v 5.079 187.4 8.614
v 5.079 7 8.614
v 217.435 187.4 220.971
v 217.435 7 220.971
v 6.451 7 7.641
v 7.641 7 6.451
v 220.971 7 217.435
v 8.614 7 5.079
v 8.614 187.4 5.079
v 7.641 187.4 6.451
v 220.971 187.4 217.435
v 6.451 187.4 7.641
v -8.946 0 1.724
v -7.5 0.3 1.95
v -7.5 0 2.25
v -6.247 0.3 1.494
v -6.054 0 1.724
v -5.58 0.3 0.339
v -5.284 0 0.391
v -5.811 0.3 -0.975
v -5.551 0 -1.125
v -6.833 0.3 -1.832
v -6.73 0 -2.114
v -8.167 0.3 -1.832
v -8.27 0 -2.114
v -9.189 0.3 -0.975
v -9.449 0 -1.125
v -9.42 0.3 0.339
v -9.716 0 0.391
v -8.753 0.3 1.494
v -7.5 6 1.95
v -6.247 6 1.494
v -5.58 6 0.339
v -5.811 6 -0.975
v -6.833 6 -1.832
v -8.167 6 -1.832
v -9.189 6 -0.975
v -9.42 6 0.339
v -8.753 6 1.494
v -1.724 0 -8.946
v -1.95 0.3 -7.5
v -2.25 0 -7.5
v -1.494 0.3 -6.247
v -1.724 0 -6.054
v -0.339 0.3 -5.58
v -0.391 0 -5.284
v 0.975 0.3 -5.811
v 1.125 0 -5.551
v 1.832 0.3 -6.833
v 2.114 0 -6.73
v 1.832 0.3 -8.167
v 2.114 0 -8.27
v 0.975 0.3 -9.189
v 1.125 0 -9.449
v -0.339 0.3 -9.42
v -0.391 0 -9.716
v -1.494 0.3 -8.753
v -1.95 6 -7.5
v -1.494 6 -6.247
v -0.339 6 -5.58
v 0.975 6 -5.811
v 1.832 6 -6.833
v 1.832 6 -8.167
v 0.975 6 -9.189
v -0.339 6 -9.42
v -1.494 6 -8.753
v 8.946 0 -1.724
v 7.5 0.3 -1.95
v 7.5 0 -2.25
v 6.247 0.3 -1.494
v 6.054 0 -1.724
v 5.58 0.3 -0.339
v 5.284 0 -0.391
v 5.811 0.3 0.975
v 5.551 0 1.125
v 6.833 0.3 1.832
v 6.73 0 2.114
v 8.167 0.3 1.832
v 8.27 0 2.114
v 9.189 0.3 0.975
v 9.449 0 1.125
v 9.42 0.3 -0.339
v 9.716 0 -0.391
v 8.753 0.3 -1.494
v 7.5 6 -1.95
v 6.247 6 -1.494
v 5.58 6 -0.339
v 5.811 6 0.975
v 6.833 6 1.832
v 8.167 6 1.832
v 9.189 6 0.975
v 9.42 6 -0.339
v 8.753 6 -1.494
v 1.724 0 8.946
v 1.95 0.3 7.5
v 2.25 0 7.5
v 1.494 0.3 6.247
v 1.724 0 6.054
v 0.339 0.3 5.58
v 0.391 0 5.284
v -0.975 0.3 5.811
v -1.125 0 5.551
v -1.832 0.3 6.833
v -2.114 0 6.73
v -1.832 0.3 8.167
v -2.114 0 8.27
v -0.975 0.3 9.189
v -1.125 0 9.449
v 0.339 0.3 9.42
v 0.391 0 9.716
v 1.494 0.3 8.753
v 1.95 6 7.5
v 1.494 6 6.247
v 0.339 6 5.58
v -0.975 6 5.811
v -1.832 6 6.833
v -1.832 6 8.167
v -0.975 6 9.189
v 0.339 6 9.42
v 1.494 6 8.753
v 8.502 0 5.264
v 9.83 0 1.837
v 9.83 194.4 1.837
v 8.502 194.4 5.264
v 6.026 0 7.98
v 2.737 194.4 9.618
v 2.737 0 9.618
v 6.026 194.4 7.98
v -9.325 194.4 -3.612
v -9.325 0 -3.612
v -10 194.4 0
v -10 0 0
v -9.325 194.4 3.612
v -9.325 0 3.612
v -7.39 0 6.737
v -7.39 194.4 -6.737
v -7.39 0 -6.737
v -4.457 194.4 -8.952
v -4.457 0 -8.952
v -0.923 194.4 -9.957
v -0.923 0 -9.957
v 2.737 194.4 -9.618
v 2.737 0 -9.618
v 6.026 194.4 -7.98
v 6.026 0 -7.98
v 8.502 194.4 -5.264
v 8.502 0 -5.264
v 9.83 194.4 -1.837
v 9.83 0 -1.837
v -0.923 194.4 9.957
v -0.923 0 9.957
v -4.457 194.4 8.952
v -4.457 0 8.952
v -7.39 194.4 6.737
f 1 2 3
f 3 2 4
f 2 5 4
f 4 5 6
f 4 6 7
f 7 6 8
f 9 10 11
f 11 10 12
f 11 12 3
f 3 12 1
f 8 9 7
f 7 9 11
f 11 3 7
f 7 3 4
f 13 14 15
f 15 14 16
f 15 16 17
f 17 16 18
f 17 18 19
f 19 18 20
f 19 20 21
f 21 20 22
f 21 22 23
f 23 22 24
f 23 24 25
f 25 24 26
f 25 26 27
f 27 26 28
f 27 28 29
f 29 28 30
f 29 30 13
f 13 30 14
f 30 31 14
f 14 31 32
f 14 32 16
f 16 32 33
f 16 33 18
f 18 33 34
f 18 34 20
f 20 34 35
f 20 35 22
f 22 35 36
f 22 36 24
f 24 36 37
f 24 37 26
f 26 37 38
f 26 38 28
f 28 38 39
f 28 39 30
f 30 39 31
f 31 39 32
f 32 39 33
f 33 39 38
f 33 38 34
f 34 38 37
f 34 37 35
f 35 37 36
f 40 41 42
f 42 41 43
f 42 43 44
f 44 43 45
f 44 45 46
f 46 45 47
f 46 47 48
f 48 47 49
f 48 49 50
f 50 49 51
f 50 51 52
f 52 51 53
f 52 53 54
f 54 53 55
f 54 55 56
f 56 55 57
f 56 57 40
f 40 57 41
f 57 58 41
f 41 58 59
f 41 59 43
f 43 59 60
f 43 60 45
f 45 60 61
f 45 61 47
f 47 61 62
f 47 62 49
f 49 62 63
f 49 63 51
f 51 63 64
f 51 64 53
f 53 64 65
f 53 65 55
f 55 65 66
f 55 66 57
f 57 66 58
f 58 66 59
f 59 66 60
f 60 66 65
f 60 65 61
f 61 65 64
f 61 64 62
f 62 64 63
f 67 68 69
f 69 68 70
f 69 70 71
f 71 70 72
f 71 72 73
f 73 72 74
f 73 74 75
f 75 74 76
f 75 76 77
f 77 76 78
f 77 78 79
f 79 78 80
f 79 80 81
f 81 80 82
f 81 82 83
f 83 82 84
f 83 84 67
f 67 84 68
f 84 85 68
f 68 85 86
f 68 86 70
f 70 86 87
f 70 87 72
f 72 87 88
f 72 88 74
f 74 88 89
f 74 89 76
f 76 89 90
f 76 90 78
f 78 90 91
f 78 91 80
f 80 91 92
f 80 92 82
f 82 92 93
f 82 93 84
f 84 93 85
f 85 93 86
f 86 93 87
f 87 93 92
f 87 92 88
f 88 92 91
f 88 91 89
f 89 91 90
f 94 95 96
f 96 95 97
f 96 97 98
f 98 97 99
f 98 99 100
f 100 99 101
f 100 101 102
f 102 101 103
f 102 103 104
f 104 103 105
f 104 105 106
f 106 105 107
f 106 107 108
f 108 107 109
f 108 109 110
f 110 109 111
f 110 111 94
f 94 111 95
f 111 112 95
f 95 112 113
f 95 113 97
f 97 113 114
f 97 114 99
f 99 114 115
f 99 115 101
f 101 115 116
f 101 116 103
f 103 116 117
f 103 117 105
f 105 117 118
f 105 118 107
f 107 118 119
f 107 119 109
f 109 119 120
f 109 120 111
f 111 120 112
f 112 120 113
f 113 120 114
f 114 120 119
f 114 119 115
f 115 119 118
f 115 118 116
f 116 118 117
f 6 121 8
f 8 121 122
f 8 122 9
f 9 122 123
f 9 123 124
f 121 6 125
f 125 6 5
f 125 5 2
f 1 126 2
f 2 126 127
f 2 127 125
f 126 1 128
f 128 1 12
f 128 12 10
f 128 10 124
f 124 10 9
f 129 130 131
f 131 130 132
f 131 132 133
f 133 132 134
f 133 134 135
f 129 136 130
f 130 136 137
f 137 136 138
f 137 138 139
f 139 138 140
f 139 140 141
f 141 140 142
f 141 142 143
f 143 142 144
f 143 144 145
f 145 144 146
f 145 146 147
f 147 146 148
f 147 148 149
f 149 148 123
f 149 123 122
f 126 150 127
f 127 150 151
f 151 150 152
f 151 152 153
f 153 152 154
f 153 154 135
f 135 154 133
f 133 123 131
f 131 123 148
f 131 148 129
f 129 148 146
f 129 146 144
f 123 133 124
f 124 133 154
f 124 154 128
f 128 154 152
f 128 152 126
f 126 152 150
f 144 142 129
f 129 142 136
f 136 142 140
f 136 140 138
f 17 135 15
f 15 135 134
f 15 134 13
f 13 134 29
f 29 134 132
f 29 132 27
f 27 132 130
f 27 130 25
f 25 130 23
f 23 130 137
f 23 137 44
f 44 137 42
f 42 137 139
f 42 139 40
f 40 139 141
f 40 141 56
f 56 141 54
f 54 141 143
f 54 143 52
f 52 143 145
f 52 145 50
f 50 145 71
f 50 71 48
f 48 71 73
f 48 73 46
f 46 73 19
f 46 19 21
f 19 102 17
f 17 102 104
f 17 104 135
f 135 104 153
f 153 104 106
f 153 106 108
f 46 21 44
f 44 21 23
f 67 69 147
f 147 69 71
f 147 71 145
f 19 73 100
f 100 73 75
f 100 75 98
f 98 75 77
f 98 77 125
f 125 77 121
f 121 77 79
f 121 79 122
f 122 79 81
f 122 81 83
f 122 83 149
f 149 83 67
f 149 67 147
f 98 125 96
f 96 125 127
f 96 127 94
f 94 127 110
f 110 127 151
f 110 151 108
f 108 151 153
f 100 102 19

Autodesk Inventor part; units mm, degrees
ref_plane "XZ Plane" through (0, 0, 0) normal (0, 1, 0) x (-1, 0, 0)
sketch "Эскиз1" plane through (0, 0, 0) normal (0, 1, 0) x (-1, 0, 0)
  circle A0 centre (0, 0) radius 10
  dimension "d0" = 20
extrude "Выдавливание1" add sketch "Эскиз1" along normal blind 194.4
sketch "Эскиз2" plane through (0, 0, 0) normal (0, -1, 0) x (1, 0, 0)
  circle A0 centre (0, 0) radius 7.5 construction
  point P0 (0, 7.5)
  dimension "d3" = 15
hole "Отверстие1" at (0, 0, 7.5) direction (0, 1, 0) diameter 3.9 depth 6 countersink diameter 4.5 countersink angle 90
pattern_circular "Круговой массив1" count 4 over 360 about axis through (0, 0, 0) along (0, 1, 0) of "Отверстие1"
ref_plane "РабПлоскость1" through (0, 0, 0) normal (0.7071, 0, -0.7071) x (0, 1, 0)
sketch "Эскиз3" plane through (0, 0, 0) normal (0.7071, 0, -0.7071) x (0, 1, 0)
  line L0 (0, 10) -> (194.4, 10) projected
  point P0 (0, 0)
ref_plane "РабПлоскость2" through (7.0711, 0, 7.0711) normal (0.7071, 0, 0.7071) x (0, 1, 0)
sketch "Эскиз4" plane through (7.0711, 0, 7.0711) normal (0.7071, 0, 0.7071) x (0, 1, 0)
  line L0 (6, 3.3533) -> (0.3, 3.3533) projected
  line L1 (6, 7.2533) -> (0.3, 7.2533) projected
  line L2 (6, 7.2533) -> (6, 3.3533) projected
  line L3 (6, -7.2533) -> (0.3, -7.2533) projected
  line L4 (6, -3.3533) -> (0.3, -3.3533) projected
  line L5 (6, -3.3533) -> (6, -7.2533) projected
  line L6 (7, 2.5) -> (187.4, 2.5)
  line L7 (187.4, 2.5) -> (187.4, -2.5)
  line L8 (187.4, -2.5) -> (7, -2.5)
  line L9 (7, -2.5) -> (7, 2.5)
  line L10 (0, 0) -> (8, 0) construction
  line L11 (194.4, -10) -> (194.4, 10) construction
  dimension "d14" = 5
  dimension "d15" = 7
  dimension "d16" = 7
extrude "Выдавливание2" add sketch "Эскиз4" along normal blind 300 and the other way blind 10
properties part number "вал"
